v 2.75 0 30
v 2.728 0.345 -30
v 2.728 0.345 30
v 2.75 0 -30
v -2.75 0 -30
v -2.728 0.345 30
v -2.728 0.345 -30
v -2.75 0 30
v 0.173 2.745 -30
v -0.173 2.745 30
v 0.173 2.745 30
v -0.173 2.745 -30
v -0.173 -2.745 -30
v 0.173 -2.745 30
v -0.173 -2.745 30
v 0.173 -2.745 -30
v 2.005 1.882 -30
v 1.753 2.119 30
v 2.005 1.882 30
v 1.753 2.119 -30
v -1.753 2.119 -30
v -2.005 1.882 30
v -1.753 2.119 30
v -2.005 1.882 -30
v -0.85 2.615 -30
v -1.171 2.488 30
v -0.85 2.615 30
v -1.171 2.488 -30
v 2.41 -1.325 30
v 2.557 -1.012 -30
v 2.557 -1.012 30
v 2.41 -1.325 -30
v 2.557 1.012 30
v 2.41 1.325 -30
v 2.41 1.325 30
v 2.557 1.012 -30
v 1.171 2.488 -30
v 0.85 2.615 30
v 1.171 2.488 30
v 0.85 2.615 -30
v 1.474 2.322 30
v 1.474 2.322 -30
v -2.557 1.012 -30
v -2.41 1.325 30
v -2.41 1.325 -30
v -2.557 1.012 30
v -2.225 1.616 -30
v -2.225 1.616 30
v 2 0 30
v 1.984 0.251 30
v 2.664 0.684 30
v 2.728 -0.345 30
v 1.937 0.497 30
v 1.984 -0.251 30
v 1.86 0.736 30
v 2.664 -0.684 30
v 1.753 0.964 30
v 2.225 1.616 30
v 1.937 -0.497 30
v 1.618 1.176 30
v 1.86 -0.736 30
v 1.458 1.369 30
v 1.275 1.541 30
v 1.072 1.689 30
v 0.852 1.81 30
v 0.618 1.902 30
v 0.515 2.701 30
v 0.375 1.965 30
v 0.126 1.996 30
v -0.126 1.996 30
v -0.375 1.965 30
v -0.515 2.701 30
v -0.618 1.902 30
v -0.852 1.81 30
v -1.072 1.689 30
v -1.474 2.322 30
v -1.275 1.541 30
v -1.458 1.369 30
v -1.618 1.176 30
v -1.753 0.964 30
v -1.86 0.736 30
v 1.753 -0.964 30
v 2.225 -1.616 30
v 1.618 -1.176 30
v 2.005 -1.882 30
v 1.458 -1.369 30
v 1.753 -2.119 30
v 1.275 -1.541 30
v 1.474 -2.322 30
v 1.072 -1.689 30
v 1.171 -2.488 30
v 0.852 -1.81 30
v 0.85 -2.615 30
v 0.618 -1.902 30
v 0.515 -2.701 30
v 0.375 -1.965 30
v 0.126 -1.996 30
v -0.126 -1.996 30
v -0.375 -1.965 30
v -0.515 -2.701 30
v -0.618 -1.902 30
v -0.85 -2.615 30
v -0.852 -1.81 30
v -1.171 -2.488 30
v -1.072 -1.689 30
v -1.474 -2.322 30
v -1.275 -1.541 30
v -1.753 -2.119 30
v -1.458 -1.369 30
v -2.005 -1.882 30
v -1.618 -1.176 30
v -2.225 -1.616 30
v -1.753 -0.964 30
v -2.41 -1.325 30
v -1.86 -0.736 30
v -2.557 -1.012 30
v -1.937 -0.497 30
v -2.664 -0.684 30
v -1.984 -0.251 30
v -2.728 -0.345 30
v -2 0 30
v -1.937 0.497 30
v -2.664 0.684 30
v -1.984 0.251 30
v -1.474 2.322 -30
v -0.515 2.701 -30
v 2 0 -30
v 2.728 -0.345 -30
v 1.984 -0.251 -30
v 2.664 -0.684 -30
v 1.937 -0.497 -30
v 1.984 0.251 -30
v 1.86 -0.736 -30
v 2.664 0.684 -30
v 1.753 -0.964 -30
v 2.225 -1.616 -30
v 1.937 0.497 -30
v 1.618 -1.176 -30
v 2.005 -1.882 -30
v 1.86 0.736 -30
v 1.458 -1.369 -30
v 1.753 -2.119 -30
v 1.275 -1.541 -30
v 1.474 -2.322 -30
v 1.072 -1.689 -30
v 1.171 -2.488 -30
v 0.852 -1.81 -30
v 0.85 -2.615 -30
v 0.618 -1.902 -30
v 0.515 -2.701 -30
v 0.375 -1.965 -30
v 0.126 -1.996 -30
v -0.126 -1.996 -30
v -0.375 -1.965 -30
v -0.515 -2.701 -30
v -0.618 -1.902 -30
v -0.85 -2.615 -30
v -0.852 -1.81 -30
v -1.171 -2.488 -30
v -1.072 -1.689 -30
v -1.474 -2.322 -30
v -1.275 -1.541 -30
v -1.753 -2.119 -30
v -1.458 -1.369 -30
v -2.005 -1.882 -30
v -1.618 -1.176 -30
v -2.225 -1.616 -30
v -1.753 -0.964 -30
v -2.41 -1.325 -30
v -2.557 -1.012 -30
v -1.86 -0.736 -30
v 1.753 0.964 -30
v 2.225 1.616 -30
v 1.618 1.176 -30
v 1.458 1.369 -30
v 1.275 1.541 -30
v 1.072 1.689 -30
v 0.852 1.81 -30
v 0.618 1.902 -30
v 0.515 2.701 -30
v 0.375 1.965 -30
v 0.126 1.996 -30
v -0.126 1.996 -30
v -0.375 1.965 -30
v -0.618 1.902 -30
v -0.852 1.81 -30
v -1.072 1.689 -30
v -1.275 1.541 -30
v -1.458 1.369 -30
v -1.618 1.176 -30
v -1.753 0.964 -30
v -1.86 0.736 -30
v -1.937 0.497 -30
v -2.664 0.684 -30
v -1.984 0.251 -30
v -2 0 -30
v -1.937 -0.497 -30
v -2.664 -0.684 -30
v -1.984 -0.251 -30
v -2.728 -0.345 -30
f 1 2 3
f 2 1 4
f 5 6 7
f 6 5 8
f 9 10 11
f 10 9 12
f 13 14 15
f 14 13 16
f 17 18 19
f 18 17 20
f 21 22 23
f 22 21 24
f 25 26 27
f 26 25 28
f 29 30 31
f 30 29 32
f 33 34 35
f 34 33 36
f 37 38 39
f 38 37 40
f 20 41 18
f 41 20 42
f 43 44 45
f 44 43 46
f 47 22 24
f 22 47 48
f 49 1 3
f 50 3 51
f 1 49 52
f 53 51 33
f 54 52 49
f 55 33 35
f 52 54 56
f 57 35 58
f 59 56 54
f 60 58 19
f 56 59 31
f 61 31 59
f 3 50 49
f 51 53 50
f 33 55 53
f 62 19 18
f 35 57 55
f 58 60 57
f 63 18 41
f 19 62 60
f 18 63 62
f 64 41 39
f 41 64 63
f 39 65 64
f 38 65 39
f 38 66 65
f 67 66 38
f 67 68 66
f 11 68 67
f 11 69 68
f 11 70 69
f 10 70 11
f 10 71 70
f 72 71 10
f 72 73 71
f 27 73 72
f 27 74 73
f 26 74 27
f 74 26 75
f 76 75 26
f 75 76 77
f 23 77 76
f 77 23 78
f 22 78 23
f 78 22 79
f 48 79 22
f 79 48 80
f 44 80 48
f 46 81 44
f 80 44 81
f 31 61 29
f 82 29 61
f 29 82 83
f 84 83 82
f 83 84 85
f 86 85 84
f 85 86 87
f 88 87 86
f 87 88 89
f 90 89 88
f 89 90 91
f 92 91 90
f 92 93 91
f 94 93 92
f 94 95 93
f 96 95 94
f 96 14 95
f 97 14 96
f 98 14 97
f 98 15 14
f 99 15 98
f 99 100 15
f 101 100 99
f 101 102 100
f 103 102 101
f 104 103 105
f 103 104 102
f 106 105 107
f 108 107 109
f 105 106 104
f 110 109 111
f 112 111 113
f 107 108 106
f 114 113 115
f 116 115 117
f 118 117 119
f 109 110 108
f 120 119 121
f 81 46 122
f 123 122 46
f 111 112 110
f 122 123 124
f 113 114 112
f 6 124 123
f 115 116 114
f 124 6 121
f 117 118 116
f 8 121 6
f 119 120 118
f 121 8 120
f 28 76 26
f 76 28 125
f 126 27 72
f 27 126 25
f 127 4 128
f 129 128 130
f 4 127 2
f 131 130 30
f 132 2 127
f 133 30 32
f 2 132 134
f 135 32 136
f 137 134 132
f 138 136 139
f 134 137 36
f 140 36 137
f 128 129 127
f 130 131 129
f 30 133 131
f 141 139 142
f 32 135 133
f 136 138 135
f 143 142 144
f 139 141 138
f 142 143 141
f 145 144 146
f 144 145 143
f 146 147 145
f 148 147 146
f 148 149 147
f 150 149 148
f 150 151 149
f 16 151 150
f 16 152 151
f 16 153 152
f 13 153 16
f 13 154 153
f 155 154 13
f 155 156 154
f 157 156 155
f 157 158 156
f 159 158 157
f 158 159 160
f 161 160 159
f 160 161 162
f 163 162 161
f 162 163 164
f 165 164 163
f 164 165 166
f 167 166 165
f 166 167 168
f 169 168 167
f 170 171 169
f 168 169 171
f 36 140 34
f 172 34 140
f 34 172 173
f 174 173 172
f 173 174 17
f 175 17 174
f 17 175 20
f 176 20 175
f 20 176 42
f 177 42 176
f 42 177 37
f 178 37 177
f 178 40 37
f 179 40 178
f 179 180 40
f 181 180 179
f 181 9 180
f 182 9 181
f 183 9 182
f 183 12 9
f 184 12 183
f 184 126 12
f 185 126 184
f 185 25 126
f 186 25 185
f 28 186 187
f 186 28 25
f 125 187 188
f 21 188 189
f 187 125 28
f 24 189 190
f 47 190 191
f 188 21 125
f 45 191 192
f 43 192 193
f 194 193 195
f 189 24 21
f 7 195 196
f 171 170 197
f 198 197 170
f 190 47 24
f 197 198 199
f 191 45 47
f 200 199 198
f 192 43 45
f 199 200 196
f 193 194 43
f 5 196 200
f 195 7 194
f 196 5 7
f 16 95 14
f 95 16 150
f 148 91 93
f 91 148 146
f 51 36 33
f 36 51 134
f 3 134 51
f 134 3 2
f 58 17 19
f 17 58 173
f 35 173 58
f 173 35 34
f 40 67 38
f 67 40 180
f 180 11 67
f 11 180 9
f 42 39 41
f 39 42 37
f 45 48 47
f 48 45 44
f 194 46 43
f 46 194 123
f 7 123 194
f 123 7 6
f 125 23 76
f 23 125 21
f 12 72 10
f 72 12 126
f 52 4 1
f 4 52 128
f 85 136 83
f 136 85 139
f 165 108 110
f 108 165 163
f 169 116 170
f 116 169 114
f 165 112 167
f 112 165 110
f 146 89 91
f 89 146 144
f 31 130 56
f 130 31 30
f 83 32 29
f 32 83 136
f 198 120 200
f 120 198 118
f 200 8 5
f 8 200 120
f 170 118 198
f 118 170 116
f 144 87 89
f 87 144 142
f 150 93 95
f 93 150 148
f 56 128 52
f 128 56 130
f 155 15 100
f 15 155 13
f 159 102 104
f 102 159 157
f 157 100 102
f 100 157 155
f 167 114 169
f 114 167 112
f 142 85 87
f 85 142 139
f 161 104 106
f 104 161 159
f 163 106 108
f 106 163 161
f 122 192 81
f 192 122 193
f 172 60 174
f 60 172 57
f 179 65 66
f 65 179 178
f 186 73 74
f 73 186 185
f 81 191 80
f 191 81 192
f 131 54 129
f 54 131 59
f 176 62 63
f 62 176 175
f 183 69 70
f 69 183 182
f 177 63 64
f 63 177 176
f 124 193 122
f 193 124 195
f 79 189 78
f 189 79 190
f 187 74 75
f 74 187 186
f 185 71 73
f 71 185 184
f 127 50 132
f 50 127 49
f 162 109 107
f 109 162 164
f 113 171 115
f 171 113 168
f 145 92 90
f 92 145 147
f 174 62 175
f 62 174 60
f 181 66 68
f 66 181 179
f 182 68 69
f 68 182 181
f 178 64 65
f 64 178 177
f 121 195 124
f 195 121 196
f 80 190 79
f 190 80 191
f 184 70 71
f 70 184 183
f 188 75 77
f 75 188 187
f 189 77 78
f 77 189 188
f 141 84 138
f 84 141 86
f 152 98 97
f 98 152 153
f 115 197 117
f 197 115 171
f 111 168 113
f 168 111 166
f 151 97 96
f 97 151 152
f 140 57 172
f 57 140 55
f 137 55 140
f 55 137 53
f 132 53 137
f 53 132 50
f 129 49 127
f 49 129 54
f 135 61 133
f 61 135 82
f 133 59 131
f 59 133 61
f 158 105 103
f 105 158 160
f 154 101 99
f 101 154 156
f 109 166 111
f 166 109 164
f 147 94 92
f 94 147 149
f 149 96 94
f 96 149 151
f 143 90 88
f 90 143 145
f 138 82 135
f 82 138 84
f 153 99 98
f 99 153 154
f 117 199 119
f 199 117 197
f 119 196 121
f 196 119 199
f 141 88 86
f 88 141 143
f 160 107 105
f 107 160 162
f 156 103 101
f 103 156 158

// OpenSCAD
$fn = 50;


difference() {
	union() {
		translate(v = [0, 0, -30.0000000000]) {
			cylinder(h = 60, r = 2.7500000000);
		}
	}
	union() {
		translate(v = [0, 0, -100.0000000000]) {
			cylinder(h = 200, r = 2.0000000000);
		}
	}
}
